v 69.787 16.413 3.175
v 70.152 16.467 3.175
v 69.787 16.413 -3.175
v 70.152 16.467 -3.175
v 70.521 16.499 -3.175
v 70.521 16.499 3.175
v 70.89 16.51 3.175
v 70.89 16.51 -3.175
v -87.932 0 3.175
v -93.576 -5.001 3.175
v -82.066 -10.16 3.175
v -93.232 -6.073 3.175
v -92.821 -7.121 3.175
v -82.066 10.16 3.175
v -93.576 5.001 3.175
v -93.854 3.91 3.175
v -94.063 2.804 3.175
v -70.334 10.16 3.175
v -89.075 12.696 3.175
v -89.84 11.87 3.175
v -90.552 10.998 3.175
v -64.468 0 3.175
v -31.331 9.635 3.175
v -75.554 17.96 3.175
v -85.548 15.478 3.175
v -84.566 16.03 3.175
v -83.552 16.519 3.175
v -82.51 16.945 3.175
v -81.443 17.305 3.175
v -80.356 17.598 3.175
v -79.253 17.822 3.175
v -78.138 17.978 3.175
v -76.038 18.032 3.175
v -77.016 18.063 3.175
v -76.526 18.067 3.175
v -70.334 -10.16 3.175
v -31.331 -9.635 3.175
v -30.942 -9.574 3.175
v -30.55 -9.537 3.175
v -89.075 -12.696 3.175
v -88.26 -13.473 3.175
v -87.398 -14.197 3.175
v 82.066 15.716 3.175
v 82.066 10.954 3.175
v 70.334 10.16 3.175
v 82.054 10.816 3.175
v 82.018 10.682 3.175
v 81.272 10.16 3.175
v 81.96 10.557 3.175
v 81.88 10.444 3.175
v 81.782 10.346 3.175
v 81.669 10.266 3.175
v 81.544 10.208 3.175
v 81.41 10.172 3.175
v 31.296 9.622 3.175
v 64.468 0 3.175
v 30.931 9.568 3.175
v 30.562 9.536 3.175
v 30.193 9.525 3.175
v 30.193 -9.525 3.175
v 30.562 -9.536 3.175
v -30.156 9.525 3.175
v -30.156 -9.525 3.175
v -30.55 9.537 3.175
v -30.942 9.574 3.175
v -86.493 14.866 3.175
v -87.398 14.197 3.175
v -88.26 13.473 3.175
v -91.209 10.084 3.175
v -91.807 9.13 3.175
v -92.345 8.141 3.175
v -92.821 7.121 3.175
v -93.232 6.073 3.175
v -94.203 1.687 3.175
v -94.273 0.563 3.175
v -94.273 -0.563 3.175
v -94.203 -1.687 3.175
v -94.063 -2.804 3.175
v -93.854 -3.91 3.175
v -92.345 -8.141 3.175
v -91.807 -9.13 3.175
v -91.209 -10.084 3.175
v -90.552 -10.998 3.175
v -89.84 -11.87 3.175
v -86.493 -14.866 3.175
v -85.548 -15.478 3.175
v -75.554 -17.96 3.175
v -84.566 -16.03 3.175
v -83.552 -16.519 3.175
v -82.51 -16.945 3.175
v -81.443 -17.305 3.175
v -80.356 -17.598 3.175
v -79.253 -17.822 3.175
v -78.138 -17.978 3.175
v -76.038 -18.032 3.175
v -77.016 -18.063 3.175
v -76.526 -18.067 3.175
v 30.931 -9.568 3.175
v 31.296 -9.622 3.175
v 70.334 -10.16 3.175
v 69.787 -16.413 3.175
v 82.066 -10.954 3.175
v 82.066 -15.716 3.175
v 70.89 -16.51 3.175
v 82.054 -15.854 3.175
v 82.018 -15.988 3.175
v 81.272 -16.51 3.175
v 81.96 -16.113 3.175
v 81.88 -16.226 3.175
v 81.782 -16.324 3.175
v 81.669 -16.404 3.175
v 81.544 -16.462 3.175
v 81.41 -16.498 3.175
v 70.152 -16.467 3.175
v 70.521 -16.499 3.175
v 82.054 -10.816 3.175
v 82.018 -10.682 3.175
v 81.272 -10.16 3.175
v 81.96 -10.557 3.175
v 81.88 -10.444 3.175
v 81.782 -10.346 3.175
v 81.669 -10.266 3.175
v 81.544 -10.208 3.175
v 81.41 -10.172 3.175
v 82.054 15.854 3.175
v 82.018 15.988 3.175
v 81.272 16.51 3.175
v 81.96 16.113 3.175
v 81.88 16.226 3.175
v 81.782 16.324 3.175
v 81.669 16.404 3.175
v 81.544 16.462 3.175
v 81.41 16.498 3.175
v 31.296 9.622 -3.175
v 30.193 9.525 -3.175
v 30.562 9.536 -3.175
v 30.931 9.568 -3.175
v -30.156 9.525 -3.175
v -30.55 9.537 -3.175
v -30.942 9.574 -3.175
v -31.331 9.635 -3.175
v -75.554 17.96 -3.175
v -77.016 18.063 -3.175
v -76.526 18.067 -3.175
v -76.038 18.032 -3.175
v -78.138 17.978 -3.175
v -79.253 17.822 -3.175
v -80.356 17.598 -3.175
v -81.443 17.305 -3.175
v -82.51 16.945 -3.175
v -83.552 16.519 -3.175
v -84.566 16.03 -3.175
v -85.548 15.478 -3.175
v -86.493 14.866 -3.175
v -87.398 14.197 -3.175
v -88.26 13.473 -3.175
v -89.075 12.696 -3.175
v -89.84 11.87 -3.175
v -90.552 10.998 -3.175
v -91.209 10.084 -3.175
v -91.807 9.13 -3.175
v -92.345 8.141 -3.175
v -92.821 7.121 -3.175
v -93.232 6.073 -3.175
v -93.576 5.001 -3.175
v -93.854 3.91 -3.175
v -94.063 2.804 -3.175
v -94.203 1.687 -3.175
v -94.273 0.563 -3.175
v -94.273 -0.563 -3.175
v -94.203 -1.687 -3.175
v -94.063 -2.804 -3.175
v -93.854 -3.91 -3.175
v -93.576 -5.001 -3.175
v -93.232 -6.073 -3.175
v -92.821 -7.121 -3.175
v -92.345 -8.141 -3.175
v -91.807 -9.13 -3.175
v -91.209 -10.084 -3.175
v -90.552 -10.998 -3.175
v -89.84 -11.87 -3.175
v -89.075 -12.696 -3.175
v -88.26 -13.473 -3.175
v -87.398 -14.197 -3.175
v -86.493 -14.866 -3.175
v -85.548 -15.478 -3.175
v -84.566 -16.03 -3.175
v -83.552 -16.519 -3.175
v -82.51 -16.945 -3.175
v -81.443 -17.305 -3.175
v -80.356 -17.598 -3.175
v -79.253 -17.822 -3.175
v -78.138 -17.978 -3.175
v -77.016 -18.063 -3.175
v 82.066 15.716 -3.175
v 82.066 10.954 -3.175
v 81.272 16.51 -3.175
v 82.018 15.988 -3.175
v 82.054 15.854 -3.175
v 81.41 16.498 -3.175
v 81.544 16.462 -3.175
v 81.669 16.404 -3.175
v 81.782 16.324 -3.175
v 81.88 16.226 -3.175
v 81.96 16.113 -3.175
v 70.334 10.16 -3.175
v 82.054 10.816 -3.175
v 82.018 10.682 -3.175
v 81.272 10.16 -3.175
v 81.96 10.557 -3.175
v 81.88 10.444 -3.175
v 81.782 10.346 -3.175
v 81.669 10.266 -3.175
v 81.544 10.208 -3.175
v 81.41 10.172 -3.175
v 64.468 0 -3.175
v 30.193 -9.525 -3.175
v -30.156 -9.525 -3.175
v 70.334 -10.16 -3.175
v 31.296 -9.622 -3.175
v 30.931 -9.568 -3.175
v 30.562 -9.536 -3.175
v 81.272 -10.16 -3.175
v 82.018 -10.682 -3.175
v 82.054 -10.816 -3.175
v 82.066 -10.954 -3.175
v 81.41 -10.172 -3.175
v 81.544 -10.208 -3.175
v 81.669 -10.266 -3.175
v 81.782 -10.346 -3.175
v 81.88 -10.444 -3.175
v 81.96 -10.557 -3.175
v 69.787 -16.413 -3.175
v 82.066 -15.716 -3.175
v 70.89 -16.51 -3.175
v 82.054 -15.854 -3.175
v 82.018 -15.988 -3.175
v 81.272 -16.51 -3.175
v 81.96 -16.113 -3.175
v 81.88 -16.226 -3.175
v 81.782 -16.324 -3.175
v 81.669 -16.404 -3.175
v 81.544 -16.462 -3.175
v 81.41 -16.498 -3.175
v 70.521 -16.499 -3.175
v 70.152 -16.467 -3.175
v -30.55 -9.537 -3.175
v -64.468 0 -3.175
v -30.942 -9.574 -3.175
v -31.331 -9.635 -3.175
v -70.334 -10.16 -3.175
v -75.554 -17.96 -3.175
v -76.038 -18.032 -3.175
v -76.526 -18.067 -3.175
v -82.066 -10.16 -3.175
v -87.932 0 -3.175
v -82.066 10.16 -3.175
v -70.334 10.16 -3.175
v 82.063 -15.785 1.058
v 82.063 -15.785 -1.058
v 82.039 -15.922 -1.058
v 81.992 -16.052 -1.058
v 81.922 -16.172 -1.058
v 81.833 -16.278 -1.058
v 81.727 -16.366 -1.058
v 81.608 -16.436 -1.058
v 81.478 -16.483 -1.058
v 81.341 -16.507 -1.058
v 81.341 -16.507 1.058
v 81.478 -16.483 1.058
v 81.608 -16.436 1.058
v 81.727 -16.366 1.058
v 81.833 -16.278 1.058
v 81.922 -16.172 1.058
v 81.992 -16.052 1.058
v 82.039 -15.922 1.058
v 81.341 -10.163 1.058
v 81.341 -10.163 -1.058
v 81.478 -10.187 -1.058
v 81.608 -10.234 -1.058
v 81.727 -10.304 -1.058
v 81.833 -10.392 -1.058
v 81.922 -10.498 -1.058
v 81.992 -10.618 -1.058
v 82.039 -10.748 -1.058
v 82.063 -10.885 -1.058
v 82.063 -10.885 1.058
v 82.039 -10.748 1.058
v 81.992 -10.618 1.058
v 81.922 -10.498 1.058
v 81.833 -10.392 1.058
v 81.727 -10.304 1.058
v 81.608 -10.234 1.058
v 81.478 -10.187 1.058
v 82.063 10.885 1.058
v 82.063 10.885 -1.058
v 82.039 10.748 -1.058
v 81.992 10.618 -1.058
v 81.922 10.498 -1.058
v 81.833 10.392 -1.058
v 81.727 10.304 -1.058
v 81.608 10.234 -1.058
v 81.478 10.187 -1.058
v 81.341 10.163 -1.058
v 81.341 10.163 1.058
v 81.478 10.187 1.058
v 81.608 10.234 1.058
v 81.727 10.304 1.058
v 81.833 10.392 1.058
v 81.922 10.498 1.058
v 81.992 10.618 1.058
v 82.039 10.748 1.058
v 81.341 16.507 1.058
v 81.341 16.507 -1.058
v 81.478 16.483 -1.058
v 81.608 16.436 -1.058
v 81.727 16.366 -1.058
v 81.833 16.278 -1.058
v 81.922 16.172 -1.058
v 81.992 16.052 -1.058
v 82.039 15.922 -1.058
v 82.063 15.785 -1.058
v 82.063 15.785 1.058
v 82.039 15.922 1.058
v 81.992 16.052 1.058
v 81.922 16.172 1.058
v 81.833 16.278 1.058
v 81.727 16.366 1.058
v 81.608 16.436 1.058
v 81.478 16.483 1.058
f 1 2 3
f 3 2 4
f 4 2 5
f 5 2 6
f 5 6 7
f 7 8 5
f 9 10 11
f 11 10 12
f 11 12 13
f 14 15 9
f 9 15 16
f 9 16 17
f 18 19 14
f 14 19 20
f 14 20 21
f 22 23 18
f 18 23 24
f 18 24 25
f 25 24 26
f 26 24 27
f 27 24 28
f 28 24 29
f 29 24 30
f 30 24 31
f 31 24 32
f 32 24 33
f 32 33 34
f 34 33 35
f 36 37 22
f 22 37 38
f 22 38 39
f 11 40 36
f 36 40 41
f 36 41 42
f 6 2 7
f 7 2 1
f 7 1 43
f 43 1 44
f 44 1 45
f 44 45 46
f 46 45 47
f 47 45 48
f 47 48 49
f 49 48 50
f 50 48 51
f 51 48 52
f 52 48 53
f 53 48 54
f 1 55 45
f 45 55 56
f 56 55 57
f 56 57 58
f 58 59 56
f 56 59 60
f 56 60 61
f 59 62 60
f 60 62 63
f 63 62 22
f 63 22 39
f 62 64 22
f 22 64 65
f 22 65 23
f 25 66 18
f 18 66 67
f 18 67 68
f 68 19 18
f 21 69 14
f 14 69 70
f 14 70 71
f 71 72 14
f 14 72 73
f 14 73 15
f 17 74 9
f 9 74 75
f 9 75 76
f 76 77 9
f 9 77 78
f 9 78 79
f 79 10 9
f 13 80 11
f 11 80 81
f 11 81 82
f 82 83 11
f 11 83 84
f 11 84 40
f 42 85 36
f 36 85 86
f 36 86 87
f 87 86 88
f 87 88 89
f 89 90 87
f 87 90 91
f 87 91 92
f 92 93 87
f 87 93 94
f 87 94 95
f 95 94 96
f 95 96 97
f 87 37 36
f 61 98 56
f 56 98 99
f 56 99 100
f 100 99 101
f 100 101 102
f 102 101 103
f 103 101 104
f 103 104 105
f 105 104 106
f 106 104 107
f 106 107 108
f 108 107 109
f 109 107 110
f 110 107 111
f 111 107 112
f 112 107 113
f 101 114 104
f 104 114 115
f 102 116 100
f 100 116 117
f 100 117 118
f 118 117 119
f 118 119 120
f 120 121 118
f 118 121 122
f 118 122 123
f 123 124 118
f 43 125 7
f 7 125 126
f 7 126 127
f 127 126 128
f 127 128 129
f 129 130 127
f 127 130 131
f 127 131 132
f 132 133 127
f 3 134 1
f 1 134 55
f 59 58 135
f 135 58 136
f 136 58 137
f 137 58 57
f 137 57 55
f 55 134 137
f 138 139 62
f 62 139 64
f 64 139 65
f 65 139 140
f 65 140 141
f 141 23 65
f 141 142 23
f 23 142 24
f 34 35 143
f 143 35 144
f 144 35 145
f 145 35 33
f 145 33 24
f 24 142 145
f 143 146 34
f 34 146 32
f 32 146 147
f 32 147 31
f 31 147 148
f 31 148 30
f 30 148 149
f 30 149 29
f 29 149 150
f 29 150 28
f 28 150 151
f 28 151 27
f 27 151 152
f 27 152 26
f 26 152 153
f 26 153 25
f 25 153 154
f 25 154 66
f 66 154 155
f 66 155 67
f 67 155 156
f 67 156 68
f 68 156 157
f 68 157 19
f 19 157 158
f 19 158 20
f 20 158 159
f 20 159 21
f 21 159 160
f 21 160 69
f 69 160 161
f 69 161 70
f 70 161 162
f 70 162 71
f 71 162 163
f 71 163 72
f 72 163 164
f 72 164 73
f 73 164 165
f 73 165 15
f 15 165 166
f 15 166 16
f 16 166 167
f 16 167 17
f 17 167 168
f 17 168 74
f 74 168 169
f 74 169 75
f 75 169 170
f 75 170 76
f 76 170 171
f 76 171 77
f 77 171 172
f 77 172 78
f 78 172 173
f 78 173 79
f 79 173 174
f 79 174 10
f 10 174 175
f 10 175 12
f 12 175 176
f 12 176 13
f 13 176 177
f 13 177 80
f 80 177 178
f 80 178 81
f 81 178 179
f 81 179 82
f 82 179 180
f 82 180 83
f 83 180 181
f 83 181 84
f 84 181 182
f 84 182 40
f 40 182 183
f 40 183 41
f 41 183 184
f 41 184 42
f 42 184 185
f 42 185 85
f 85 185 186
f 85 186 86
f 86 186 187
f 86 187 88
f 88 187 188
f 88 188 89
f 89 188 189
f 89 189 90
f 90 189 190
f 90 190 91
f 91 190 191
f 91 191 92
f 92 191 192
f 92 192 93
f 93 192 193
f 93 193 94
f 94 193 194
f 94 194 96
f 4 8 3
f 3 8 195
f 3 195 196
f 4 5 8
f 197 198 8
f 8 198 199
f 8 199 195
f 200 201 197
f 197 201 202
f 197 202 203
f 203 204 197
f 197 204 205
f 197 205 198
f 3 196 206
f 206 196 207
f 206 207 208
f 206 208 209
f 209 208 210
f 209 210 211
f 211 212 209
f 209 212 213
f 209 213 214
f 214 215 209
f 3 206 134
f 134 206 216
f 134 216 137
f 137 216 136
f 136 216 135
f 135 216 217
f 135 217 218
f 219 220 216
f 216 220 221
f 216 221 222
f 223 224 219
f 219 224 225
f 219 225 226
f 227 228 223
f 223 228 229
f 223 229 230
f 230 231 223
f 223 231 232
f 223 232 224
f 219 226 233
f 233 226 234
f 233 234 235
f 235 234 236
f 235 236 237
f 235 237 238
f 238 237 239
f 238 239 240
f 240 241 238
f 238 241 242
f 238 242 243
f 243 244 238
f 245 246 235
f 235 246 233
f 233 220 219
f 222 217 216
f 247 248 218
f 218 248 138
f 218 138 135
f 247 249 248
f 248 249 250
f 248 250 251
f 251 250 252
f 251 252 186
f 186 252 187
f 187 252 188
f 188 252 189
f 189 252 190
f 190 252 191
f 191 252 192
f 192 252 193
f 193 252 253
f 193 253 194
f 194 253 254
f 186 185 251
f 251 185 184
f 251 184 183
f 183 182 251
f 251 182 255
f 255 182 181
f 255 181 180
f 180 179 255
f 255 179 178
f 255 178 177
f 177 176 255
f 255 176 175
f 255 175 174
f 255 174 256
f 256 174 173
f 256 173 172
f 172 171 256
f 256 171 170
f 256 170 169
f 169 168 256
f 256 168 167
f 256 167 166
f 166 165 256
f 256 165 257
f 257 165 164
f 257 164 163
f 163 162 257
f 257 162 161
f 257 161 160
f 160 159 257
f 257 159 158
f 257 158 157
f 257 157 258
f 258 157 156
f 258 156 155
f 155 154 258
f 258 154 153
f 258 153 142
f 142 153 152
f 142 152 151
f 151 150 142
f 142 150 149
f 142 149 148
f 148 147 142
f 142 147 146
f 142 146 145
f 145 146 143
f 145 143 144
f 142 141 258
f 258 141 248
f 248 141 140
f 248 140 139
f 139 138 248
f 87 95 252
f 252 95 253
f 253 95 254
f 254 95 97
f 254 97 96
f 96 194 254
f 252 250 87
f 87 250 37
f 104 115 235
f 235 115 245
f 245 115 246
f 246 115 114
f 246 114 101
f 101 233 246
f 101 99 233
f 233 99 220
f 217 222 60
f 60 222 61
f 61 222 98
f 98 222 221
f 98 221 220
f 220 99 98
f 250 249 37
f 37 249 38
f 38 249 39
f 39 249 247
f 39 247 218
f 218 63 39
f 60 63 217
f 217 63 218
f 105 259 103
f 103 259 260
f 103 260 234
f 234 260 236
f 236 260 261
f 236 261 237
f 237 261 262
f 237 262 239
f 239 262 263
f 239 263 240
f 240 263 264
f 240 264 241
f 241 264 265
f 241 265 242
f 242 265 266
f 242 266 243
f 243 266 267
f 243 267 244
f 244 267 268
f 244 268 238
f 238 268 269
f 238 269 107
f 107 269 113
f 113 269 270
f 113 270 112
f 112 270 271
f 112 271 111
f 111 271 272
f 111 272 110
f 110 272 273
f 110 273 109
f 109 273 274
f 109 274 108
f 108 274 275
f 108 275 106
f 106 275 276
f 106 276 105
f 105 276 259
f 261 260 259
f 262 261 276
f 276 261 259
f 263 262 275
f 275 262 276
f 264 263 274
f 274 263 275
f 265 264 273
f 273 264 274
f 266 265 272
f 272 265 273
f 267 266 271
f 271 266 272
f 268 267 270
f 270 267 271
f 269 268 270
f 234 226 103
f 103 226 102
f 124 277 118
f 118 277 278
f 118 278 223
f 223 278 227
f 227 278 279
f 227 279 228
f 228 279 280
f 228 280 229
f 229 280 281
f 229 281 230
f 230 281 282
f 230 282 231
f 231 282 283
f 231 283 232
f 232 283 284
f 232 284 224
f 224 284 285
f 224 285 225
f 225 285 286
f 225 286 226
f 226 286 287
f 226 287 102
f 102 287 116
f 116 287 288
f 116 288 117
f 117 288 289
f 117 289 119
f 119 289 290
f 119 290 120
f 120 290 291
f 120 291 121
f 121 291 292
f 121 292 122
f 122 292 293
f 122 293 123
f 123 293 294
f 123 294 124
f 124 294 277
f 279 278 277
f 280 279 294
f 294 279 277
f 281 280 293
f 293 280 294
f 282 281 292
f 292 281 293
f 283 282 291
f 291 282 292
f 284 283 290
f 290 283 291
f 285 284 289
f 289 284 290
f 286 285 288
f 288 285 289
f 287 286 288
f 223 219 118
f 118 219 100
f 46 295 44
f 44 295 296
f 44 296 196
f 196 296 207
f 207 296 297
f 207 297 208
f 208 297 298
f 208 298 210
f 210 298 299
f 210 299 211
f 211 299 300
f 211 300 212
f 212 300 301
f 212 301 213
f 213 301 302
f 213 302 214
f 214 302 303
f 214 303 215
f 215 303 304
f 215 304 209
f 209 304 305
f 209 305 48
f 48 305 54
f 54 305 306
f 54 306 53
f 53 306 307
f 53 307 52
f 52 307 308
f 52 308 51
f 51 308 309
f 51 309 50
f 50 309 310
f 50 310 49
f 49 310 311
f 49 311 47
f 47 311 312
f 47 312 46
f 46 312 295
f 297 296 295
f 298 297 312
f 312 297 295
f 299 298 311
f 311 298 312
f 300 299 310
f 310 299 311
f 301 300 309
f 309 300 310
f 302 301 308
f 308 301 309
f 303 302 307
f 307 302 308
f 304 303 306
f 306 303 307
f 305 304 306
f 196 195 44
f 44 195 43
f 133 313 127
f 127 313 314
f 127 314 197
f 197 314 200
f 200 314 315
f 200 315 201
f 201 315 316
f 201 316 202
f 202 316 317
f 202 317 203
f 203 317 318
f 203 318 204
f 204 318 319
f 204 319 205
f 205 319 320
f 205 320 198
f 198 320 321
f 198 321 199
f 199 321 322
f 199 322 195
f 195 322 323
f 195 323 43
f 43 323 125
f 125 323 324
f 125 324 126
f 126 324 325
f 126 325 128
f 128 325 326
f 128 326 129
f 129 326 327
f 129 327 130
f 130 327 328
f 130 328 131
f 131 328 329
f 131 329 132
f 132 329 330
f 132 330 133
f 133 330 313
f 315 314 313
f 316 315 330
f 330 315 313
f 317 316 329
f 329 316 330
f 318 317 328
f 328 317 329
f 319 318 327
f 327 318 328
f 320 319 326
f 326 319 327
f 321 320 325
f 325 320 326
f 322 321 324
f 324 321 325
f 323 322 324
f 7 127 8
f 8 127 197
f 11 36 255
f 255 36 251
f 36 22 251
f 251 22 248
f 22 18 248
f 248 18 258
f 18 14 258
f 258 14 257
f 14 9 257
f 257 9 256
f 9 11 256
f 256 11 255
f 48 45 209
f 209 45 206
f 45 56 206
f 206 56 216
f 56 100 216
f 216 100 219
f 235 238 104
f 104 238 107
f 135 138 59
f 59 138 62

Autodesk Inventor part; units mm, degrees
ref_plane "YZ Plane" through (0, 0, 0) normal (1, 0, 0) x (0, 1, 0)
ref_plane "XZ Plane" through (0, 0, 0) normal (0, 1, 0) x (-1, 0, 0)
ref_plane "XY Plane" through (0, 0, 0) normal (0, 0, 1) x (1, 0, 0)
sketch "Sketch2" plane through (0, 0, 0) normal (0, 0, 1) x (1, 0, 0)
  line L0 (-64.4682, 0) -> (-70.3341, -10.16)
  line L1 (-70.3341, -10.16) -> (-82.0659, -10.16)
  line L2 (-82.0659, -10.16) -> (-87.9318, 0)
  line L3 (-87.9318, 0) -> (-82.0659, 10.16)
  line L4 (-82.0659, 10.16) -> (-70.3341, 10.16)
  line L5 (-70.3341, 10.16) -> (-64.4682, 0)
  line L6 (-76.2, 0) -> (76.2, 0) construction
  line L7 (82.0659, -10.16) -> (70.3341, -10.16)
  line L8 (70.3341, -10.16) -> (64.4682, 0)
  line L9 (64.4682, 0) -> (70.3341, 10.16)
  line L10 (70.3341, 10.16) -> (82.0659, 10.16)
  line L11 (82.0659, 10.16) -> (82.4325, 9.525)
  line L12 (-132.627, 0) -> (135.7899, 0) projected
  line L13 (0, 0) -> (0, 37.2208) construction
  line L14 (0, 9.525) -> (30.7487, 9.525)
  line L15 (0, 9.525) -> (-30.7487, 9.525)
  circle A0 centre (-76.2, 0) radius 18.0818
  line L16 (-87.9318, 0) -> (-94.2818, 0) construction
  arc A1 (61.0244, 14.8673) -> (61.0244, -14.8673) centre (76.2, 0) ccw
  line L17 (87.9318, 0) -> (97.4446, 0) construction
  line L18 (87.9318, 0) -> (89.9839, -16.166) construction
  line L19 (30.7487, 9.525) -> (70.3341, 16.51)
  line L20 (-76.2, 18.0818) -> (-30.7487, 9.525)
  line L21 (70.3341, 10.16) -> (70.3341, 16.51) construction
  line L22 (82.0659, 10.16) -> (82.0659, 16.51)
  line L23 (82.0659, -10.16) -> (82.0659, -16.51)
  line L24 (0, -9.525) -> (30.7487, -9.525)
  line L25 (0, -9.525) -> (-30.7487, -9.525)
  line L26 (30.7487, -9.525) -> (70.3341, -16.51)
  line L27 (-76.2, -18.0818) -> (-30.7487, -9.525)
  line L28 (70.3341, 16.51) -> (82.0659, 16.51)
  line L29 (70.3341, -10.16) -> (70.3341, -16.51) construction
  line L30 (70.3341, -16.51) -> (82.0659, -16.51)
  point P0 (82.0659, 18.5801)
  point P1 (82.0659, -18.5801)
  dimension "centerToBoxEndWrench" = 76.2
  dimension "boltPrintedSize" = 20.32
  dimension "centerToOpenEndWrench" = 76.2
  dimension "d23" = 9.525
  dimension "d24" = 6.35
  dimension "d26" = 6.35
extrude "Extrusion2" add sketch "Sketch2" along normal mid plane 6.35 contours L12 A0 L27 L2 L1 L0 | L5 L4 L3 L12 A0 L20 | A0 L20 L15 L14 L19 A1 L12 | L12 A1 L26 L24 L25 L27 A0 | A1 L19 L28 L22 L10 L9 L12 | L12 L8 L7 L23 L30 L26 A1
fillet "Fillet1" radius 0.7937 4 edges at (82.0659, 16.51, 0) (82.0659, 10.16, 0) (82.0659, -10.16, 0) (82.0659, -16.51, 0)
fillet "Fillet2" radius 6.35 8 edges at (-30.7487, -9.525, 0) (30.7487, -9.525, 0) (70.3341, -16.51, 0) (-76.2, -18.0818, 0) (-76.2, 18.0818, 0) (-30.7487, 9.525, 0) (30.7487, 9.525, 0) (70.3341, 16.51, 0)
equation "\"centerToBoxEndWrench\" = 4 * boltSize"
equation "\"boltPrintedSize\" = boltSize + boltGap"
equation "\"centerToOpenEndWrench\" = 4 * boltSize"
equation "\"d23\" = 0.5 * boltSize"
equation "\"d24\" = minWallThickness"
equation "\"d26\" = minWallThickness"
equation "\"d27\" = minWallThickness"
equation "\"minWallThickness\" = 6.35"
equation "\"boltGap\" = 1.27"
equation "\"boltSize\" = 19.05"
properties part number "3_4_inchWrenchV04"
